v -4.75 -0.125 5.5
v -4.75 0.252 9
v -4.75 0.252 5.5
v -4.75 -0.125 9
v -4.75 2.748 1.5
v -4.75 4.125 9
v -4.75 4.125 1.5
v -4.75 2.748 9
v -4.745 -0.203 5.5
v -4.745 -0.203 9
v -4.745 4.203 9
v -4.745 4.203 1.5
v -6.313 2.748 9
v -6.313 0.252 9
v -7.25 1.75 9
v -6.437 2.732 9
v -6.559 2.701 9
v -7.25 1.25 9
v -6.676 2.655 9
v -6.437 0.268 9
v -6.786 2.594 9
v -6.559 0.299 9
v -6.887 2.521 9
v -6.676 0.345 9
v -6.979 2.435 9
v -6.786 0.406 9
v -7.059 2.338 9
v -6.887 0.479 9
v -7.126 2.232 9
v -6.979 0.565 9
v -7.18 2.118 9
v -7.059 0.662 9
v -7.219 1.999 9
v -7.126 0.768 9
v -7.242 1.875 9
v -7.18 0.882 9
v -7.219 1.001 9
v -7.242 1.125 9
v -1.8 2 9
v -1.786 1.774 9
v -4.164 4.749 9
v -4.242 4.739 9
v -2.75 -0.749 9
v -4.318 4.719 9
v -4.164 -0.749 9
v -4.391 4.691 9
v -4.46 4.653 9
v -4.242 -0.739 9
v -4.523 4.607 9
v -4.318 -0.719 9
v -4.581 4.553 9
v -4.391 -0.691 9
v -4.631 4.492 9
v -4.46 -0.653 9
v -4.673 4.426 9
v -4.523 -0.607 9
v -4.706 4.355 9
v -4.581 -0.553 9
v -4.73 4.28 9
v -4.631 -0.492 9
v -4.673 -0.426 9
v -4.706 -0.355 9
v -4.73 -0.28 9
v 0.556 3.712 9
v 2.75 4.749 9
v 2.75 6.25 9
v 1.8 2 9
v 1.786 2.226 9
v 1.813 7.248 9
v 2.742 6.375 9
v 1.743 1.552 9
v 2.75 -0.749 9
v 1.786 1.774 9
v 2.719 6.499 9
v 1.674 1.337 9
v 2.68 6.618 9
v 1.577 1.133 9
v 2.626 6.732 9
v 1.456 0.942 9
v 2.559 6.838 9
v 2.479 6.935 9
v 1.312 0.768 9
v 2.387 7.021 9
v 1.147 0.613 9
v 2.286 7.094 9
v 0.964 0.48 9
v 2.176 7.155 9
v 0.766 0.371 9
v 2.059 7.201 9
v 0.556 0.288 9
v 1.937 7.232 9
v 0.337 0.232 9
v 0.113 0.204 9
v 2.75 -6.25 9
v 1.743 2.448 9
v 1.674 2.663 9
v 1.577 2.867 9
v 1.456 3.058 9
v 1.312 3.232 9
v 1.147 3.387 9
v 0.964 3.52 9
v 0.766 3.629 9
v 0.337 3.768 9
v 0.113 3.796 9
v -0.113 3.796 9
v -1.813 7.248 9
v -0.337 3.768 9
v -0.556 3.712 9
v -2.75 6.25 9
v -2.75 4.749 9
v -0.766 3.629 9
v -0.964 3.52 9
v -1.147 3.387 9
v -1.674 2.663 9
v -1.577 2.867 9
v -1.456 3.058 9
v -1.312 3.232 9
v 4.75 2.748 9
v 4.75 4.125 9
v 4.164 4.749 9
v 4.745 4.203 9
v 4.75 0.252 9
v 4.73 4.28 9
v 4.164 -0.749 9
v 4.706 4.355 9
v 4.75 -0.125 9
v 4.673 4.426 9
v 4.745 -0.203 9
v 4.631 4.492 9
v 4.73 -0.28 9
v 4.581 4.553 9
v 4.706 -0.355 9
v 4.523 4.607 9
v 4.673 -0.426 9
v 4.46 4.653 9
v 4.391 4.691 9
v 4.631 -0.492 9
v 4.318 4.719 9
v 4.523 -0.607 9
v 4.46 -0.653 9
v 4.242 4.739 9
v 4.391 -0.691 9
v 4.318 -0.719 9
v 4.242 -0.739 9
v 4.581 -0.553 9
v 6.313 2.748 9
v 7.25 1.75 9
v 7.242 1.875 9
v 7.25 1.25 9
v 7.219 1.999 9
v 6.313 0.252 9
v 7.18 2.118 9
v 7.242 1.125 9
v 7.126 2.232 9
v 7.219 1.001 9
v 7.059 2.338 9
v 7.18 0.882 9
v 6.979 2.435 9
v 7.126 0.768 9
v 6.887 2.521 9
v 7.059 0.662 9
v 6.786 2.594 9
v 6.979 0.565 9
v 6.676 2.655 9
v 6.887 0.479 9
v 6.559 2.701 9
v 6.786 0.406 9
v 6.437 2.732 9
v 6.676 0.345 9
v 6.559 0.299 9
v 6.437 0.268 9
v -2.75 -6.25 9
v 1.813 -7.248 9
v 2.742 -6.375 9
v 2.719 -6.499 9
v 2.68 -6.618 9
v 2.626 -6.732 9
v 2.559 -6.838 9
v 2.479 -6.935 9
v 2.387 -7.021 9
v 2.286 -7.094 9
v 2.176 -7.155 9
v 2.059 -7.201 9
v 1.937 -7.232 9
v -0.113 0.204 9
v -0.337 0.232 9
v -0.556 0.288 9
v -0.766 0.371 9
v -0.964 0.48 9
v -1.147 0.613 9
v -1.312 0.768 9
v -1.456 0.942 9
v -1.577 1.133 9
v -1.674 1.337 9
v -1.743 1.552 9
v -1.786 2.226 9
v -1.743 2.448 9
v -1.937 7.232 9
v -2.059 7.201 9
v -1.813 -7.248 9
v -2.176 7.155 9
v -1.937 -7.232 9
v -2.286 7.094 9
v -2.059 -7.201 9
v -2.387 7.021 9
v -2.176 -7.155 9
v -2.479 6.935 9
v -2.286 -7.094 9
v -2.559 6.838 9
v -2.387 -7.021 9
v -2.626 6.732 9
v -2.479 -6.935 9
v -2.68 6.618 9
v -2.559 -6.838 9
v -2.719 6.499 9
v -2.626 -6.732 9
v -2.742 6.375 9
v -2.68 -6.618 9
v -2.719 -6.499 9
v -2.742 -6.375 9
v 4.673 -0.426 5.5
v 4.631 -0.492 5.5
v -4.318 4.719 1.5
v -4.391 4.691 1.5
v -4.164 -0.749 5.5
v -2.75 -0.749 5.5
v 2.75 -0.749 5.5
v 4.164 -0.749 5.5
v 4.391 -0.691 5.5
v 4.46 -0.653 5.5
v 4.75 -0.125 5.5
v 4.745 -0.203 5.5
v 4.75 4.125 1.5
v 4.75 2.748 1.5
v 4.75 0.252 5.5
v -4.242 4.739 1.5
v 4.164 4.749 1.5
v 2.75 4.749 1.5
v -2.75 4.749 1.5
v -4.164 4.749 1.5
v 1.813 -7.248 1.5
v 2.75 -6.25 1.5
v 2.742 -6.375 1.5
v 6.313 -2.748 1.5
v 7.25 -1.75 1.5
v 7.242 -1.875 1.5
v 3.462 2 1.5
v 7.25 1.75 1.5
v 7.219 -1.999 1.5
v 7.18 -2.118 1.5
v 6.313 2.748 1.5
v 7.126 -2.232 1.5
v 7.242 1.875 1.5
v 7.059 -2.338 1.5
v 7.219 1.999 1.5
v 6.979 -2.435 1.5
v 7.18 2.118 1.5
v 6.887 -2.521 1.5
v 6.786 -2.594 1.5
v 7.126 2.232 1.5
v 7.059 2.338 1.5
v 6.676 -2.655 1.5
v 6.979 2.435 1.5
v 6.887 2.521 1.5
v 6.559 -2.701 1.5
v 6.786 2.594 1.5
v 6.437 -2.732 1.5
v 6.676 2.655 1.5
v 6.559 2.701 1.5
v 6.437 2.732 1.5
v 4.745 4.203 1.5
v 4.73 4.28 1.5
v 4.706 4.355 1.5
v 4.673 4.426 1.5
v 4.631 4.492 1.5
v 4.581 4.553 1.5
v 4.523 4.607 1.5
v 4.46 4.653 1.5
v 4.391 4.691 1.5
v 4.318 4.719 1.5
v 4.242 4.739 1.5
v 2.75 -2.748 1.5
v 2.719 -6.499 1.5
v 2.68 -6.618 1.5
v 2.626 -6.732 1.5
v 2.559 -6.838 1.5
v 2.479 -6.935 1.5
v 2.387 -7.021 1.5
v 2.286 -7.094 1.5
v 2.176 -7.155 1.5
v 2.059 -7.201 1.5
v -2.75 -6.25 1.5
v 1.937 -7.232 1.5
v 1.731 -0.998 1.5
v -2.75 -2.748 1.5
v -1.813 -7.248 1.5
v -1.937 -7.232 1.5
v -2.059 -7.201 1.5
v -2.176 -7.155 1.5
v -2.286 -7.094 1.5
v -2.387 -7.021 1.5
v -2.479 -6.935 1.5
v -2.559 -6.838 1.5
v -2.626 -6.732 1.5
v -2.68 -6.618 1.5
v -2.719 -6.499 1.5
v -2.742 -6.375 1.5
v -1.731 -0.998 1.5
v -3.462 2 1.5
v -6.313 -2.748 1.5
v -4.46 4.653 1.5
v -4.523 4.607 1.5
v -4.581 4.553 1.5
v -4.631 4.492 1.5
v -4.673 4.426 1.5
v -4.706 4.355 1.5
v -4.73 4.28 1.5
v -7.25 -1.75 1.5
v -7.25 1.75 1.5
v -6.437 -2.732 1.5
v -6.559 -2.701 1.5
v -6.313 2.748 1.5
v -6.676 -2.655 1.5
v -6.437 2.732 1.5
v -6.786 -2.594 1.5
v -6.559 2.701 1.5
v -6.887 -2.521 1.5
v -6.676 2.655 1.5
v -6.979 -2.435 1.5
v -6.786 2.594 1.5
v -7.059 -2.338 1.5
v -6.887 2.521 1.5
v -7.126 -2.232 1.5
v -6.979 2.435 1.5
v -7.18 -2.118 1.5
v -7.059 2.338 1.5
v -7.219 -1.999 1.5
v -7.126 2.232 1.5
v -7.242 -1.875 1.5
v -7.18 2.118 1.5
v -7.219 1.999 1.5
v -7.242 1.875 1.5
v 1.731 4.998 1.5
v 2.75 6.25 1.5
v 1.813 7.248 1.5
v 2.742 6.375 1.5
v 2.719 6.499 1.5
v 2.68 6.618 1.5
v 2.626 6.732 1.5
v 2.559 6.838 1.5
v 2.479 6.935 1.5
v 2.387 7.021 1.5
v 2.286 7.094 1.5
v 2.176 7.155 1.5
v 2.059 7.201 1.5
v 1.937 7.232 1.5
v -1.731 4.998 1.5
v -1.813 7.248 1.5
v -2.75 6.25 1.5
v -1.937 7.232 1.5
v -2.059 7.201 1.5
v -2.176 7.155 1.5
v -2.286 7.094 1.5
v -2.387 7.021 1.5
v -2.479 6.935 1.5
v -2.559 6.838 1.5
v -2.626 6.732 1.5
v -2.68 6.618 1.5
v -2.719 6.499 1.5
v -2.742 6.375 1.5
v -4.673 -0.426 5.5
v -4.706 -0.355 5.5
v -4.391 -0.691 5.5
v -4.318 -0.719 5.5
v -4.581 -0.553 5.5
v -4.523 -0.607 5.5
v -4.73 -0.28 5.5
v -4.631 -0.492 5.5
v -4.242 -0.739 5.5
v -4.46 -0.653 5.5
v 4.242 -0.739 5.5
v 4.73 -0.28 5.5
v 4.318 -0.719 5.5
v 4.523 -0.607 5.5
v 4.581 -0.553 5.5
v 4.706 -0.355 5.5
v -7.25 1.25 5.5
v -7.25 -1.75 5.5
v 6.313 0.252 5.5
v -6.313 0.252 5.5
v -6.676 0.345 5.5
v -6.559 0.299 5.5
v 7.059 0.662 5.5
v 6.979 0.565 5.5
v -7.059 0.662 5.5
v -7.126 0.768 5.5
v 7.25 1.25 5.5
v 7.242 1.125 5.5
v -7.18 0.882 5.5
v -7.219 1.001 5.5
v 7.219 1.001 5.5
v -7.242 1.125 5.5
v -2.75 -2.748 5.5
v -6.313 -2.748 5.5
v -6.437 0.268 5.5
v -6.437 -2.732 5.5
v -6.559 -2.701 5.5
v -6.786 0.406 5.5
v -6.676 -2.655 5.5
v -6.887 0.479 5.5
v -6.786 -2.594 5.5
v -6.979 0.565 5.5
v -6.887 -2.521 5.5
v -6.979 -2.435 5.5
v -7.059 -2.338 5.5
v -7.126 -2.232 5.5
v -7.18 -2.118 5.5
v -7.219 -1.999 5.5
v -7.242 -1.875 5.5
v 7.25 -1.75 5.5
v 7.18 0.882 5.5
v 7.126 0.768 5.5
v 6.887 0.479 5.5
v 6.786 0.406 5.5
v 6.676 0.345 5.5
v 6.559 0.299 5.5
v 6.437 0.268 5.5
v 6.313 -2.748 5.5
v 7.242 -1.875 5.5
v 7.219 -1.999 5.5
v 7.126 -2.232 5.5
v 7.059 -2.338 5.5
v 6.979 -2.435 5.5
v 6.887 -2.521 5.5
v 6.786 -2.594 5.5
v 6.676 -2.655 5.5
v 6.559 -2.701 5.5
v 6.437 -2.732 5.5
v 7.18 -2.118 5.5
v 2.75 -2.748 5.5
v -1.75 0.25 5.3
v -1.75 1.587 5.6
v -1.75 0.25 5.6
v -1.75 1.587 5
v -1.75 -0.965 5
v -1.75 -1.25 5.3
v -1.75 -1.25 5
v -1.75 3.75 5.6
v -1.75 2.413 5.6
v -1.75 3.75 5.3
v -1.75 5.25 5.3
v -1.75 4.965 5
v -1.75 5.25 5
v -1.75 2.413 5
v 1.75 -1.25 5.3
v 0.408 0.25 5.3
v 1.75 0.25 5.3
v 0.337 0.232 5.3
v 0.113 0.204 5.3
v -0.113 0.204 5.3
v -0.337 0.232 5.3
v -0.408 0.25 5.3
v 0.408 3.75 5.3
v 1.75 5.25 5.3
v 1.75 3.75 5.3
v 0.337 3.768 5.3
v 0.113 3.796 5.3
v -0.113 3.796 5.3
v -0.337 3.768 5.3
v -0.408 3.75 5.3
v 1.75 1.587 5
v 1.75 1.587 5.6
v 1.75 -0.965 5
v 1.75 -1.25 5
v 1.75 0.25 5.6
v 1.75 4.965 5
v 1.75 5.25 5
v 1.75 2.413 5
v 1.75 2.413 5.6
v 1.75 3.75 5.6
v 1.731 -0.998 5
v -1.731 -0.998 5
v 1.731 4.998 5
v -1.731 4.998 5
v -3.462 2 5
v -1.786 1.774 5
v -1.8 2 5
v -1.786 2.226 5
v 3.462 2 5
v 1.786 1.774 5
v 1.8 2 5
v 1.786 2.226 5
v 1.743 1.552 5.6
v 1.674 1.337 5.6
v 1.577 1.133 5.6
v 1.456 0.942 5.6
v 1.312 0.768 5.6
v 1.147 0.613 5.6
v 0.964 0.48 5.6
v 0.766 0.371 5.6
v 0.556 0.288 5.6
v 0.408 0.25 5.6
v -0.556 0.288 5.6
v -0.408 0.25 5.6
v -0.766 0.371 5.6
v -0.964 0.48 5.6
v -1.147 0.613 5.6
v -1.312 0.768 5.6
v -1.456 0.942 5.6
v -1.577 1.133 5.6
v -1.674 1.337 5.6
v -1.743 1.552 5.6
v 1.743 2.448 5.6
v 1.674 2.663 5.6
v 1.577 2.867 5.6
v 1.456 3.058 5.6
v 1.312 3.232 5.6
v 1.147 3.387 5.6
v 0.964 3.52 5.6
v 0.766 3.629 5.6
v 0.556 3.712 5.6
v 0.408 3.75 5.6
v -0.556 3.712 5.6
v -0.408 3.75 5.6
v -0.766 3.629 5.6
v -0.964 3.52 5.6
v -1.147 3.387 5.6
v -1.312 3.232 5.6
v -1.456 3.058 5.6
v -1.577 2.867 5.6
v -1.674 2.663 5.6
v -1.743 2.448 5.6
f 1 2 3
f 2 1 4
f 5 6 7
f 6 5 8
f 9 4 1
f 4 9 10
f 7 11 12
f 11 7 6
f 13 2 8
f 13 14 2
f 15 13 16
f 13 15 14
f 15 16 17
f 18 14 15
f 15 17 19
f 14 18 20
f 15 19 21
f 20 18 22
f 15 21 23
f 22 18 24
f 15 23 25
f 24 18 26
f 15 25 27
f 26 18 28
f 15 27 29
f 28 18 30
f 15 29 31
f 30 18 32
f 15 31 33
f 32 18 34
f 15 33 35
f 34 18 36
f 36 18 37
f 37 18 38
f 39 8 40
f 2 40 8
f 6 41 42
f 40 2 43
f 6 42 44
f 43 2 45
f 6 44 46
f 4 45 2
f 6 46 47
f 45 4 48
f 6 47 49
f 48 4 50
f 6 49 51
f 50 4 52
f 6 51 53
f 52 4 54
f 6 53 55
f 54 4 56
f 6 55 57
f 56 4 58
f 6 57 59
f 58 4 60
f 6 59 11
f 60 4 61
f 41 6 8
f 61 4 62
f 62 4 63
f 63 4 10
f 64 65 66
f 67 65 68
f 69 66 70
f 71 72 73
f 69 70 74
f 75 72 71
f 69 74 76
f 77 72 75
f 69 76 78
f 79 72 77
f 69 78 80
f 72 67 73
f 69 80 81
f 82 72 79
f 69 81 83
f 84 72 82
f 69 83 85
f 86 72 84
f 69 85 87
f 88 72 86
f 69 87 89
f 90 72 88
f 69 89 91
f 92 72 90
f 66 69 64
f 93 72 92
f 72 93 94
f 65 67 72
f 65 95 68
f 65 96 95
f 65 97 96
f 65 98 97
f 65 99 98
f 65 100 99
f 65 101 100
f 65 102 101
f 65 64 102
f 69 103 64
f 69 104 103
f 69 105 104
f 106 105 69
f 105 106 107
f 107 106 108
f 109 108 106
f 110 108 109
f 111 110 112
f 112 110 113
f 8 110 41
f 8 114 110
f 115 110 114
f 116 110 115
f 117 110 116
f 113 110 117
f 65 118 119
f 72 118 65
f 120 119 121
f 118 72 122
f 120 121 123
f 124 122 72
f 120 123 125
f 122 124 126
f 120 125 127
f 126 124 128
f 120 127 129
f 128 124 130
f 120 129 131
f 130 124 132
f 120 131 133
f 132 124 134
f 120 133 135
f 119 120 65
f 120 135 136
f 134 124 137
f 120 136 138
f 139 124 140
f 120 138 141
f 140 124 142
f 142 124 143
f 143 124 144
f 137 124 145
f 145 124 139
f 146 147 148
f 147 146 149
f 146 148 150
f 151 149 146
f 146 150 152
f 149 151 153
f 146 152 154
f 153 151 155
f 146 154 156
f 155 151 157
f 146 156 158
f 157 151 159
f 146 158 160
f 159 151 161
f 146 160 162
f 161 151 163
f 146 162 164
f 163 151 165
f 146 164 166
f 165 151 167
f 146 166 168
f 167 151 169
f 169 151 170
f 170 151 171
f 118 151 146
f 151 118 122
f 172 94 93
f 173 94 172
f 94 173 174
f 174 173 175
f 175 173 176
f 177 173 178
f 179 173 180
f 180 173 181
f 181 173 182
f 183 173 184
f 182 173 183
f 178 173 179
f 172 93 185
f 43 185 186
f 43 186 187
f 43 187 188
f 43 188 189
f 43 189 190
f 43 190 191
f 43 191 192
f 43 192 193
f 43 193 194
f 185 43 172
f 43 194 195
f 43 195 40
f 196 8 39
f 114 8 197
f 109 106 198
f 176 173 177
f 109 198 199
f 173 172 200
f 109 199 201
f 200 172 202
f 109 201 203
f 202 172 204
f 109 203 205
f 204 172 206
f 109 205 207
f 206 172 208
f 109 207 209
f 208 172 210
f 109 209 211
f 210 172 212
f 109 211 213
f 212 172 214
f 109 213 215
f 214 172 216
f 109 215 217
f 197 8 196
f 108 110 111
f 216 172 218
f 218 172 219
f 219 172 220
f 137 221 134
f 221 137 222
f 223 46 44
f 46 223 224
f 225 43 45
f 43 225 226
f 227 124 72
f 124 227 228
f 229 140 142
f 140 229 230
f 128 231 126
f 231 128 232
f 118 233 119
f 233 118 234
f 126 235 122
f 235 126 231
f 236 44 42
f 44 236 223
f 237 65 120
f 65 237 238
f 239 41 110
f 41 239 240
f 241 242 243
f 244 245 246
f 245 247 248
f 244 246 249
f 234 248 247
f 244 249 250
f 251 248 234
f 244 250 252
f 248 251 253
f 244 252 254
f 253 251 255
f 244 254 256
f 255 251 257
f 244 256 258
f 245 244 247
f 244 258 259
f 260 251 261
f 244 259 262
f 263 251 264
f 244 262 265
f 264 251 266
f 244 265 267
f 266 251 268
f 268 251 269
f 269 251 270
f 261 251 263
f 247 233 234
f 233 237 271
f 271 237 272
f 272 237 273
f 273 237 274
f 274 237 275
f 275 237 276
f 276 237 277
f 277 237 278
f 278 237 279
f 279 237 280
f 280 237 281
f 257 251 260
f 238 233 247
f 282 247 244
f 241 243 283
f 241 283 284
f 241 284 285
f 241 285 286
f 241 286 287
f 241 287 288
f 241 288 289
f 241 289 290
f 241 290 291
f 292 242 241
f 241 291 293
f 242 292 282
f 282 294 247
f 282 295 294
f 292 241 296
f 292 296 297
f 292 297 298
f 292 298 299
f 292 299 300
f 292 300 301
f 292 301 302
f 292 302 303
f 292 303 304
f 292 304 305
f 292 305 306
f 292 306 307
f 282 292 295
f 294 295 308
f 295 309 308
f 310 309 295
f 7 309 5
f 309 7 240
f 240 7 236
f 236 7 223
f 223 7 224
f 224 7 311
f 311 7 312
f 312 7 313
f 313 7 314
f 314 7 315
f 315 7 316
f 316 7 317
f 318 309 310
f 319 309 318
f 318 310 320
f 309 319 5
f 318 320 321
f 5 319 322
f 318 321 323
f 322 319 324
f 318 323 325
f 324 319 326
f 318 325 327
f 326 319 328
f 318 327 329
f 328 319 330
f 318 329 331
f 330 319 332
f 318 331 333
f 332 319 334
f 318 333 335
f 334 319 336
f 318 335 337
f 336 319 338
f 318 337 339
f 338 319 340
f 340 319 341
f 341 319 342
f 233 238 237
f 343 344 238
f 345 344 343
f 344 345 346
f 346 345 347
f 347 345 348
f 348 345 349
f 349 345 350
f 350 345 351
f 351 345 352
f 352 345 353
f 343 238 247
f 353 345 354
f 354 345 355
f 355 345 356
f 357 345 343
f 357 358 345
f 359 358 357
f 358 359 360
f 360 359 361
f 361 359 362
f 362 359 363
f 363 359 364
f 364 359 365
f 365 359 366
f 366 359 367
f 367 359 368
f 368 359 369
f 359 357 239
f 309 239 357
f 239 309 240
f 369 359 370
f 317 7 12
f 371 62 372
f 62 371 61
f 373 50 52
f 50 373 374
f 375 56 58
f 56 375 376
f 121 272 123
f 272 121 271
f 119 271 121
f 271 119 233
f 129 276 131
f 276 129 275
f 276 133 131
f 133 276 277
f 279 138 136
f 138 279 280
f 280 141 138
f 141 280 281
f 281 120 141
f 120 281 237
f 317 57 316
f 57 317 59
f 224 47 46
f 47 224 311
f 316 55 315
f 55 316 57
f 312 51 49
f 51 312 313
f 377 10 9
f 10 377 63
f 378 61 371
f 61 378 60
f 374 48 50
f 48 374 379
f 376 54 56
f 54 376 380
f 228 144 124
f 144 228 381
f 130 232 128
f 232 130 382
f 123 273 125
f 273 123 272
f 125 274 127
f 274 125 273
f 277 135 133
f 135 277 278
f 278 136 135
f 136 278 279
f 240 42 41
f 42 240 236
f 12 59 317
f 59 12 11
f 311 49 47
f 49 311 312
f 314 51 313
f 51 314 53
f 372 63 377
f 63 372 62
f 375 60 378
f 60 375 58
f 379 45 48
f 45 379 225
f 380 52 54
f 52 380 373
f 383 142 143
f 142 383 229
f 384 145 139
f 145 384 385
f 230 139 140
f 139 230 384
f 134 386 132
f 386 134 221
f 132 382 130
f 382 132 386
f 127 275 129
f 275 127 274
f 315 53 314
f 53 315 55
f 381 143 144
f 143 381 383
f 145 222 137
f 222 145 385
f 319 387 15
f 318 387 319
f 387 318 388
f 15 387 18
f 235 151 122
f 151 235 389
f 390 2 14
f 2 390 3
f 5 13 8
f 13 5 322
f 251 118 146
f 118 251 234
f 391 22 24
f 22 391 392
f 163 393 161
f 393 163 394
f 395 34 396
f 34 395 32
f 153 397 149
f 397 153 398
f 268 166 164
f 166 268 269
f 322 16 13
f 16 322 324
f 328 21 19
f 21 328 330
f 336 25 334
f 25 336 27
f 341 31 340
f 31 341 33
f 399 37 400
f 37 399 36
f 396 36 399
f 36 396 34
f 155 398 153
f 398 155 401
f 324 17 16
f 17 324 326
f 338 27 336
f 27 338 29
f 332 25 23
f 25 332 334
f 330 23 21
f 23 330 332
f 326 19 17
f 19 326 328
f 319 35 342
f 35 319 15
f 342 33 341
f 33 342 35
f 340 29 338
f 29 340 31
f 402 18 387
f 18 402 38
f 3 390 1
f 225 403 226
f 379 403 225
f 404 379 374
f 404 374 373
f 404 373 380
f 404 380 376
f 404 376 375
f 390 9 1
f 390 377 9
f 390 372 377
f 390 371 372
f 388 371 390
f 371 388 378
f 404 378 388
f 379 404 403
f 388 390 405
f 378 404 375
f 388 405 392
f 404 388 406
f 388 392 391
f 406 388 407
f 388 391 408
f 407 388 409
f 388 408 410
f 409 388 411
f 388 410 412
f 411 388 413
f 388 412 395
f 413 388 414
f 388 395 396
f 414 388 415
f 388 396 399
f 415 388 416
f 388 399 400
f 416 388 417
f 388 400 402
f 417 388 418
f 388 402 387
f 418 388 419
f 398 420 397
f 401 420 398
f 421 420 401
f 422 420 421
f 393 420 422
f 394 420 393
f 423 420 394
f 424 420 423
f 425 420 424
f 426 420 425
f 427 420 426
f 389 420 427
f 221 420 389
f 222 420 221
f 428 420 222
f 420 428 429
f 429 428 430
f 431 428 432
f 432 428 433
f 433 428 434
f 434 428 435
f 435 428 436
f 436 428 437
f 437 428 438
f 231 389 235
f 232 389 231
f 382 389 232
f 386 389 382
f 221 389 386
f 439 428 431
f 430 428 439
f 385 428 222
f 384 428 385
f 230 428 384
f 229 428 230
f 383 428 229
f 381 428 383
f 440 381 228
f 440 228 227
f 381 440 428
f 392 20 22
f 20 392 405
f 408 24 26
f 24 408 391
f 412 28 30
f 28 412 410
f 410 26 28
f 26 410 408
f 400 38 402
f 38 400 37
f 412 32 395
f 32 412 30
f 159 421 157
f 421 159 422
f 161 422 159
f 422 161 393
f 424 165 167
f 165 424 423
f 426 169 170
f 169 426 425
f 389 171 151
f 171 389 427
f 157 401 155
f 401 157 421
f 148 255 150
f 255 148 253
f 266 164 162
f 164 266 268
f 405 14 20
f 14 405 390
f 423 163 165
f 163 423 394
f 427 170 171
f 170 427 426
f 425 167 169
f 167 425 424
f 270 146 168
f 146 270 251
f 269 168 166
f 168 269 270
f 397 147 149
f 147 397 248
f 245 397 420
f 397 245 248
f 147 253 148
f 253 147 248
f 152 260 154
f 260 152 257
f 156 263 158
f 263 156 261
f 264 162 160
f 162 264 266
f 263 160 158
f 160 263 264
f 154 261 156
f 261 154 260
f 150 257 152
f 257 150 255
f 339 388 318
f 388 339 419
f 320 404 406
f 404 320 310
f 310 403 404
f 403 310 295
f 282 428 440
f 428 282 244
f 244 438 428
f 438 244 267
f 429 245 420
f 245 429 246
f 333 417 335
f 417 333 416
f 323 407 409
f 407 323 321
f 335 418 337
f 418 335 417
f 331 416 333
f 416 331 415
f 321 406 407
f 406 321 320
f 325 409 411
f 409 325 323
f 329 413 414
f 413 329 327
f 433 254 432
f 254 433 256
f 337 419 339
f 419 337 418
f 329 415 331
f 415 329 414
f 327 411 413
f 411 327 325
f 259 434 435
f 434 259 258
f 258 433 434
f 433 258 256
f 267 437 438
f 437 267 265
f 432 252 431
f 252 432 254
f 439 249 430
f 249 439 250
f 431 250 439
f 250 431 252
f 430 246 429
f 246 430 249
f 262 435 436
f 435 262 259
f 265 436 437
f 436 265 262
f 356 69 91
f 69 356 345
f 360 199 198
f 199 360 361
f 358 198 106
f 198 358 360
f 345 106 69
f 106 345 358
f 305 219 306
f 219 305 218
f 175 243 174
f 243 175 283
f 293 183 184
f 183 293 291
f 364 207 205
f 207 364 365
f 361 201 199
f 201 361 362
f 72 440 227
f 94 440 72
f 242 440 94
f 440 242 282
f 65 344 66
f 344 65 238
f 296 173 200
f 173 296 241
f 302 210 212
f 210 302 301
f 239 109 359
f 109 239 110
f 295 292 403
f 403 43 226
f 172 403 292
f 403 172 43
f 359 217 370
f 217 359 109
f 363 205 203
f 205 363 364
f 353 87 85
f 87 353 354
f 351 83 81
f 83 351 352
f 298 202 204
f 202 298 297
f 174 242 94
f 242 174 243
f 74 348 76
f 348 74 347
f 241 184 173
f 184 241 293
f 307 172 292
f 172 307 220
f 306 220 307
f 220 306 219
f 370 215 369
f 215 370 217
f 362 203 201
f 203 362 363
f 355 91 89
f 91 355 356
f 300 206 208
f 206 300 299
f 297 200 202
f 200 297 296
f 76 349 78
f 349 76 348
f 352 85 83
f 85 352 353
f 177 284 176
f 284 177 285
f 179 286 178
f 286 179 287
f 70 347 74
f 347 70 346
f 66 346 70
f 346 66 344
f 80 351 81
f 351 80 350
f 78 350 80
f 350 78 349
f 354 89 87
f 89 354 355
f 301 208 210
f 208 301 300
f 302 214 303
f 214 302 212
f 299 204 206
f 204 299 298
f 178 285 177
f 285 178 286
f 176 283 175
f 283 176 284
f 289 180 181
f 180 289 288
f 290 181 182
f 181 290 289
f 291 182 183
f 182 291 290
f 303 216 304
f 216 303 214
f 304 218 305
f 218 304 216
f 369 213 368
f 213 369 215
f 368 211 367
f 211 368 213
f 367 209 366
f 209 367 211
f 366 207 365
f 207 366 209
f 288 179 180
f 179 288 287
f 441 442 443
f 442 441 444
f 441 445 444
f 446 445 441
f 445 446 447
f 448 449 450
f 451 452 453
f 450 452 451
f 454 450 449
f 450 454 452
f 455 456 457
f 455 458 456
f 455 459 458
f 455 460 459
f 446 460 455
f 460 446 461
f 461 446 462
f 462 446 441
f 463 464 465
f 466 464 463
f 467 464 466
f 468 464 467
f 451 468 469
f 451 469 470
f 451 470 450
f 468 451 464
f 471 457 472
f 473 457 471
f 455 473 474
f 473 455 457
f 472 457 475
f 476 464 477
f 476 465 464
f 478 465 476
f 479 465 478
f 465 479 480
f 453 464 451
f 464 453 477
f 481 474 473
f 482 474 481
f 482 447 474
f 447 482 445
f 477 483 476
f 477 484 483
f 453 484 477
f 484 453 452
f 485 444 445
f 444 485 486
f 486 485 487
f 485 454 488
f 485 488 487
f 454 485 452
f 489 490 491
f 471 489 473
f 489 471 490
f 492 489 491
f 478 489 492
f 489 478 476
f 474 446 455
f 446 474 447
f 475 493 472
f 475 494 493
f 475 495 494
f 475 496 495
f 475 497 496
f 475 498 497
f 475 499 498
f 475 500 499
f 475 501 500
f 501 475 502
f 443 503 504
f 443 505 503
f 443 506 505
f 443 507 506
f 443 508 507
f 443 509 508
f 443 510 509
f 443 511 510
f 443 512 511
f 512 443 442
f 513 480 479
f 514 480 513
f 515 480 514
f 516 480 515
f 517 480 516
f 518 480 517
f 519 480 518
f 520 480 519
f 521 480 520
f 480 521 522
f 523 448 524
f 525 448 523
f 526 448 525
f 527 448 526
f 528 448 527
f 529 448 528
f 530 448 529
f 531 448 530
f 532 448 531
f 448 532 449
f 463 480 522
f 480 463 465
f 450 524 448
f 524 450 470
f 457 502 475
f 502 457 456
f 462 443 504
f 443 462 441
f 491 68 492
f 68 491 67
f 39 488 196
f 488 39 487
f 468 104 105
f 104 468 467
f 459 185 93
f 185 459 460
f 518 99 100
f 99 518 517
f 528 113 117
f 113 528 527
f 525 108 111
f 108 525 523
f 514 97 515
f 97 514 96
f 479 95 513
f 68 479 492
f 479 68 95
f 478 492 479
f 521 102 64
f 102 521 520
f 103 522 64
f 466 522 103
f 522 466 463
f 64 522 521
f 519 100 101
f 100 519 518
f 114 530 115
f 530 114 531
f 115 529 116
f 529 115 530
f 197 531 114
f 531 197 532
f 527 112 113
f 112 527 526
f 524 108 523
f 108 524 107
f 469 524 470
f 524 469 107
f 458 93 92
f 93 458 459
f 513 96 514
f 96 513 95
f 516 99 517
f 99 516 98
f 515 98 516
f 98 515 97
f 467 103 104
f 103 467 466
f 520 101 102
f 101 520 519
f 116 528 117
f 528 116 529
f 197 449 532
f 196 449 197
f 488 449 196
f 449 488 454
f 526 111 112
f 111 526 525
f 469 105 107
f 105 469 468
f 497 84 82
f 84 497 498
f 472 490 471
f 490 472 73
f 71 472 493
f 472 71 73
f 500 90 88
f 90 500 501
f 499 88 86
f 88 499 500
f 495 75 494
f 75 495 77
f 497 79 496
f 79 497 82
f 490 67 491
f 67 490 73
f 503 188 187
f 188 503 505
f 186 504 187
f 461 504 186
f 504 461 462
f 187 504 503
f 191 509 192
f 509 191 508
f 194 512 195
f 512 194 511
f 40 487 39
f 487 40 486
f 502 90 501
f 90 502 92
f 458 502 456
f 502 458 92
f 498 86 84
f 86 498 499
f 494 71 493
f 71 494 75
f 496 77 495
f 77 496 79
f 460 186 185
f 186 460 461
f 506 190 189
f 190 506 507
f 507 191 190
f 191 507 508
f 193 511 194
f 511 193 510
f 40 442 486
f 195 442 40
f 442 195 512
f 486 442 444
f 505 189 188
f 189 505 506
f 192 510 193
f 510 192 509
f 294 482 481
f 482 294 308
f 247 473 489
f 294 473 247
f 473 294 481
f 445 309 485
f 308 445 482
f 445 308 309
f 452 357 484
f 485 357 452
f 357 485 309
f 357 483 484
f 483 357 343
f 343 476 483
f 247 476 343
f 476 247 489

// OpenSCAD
$fn = 50;


difference() {
	union() {
		translate(v = [0, 2.0000000000, 1.5000000000]) {
			hull() {
				translate(v = [-4.1250000000, 2.1250000000, 0]) {
					cylinder(h = 7.5000000000, r = 0.6250000000);
				}
				translate(v = [4.1250000000, 2.1250000000, 0]) {
					cylinder(h = 7.5000000000, r = 0.6250000000);
				}
				translate(v = [-4.1250000000, -2.1250000000, 0]) {
					cylinder(h = 7.5000000000, r = 0.6250000000);
				}
				translate(v = [4.1250000000, -2.1250000000, 0]) {
					cylinder(h = 7.5000000000, r = 0.6250000000);
				}
			}
		}
		translate(v = [0, 1.5000000000, 5.5000000000]) {
			hull() {
				translate(v = [-6.2500000000, -0.2500000000, 0]) {
					cylinder(h = 3.5000000000, r = 1);
				}
				translate(v = [6.2500000000, -0.2500000000, 0]) {
					cylinder(h = 3.5000000000, r = 1);
				}
				translate(v = [-6.2500000000, 0.2500000000, 0]) {
					cylinder(h = 3.5000000000, r = 1);
				}
				translate(v = [6.2500000000, 0.2500000000, 0]) {
					cylinder(h = 3.5000000000, r = 1);
				}
			}
		}
		translate(v = [0, 0, 1.5000000000]) {
			hull() {
				translate(v = [-6.2500000000, 1.7500000000, 0]) {
					cylinder(h = 4.0000000000, r = 1);
				}
				translate(v = [6.2500000000, 1.7500000000, 0]) {
					cylinder(h = 4.0000000000, r = 1);
				}
				translate(v = [-6.2500000000, -1.7500000000, 0]) {
					cylinder(h = 4.0000000000, r = 1);
				}
				translate(v = [6.2500000000, -1.7500000000, 0]) {
					cylinder(h = 4.0000000000, r = 1);
				}
			}
		}
		translate(v = [0, 0, 5.5000000000]) {
			hull() {
				translate(v = [-1.7500000000, 6.2500000000, 0]) {
					cylinder(h = 3.5000000000, r = 1);
				}
				translate(v = [1.7500000000, 6.2500000000, 0]) {
					cylinder(h = 3.5000000000, r = 1);
				}
				translate(v = [-1.7500000000, -6.2500000000, 0]) {
					cylinder(h = 3.5000000000, r = 1);
				}
				translate(v = [1.7500000000, -6.2500000000, 0]) {
					cylinder(h = 3.5000000000, r = 1);
				}
			}
		}
		translate(v = [0, 0, 1.5000000000]) {
			hull() {
				translate(v = [-1.7500000000, 6.2500000000, 0]) {
					cylinder(h = 4.0000000000, r = 1);
				}
				translate(v = [1.7500000000, 6.2500000000, 0]) {
					cylinder(h = 4.0000000000, r = 1);
				}
				translate(v = [-1.7500000000, -6.2500000000, 0]) {
					cylinder(h = 4.0000000000, r = 1);
				}
				translate(v = [1.7500000000, -6.2500000000, 0]) {
					cylinder(h = 4.0000000000, r = 1);
				}
			}
		}
	}
	union() {
		translate(v = [0, 2.0000000000, 0]) {
			rotate(a = [0, 0, 0]) {
				difference() {
					union() {
						#translate(v = [-1.7500000000, -3.2500000000, -0.3000000000]) {
							cube(size = [3.5000000000, 6.5000000000, 0.3000000000]);
						}
						#translate(v = [-1.7500000000, -1.7500000000, -0.6000000000]) {
							cube(size = [3.5000000000, 3.5000000000, 0.3000000000]);
						}
						#translate(v = [-1.7500000000, -3.2500000000, 5]) {
							cube(size = [3.5000000000, 6.5000000000, 0.3000000000]);
						}
						#translate(v = [-1.7500000000, -1.7500000000, 5.3000000000]) {
							cube(size = [3.5000000000, 3.5000000000, 0.3000000000]);
						}
						#translate(v = [0, 0, -100.0000000000]) {
							cylinder(h = 200, r = 1.8000000000);
						}
						#linear_extrude(height = 5) {
							polygon(points = [[3.4620000000, 0.0000000000], [1.7310000000, 2.9981799479], [-1.7310000000, 2.9981799479], [-3.4620000000, 0.0000000000], [-1.7310000000, -2.9981799479], [1.7310000000, -2.9981799479]]);
						}
						#translate(v = [-1.7500000000, -3.2500000000, -0.3000000000]) {
							cube(size = [3.5000000000, 6.5000000000, 0.3000000000]);
						}
						#translate(v = [-1.7500000000, -1.7500000000, -0.6000000000]) {
							cube(size = [3.5000000000, 3.5000000000, 0.3000000000]);
						}
						#translate(v = [-1.7500000000, -3.2500000000, 5]) {
							cube(size = [3.5000000000, 6.5000000000, 0.3000000000]);
						}
						#translate(v = [-1.7500000000, -1.7500000000, 5.3000000000]) {
							cube(size = [3.5000000000, 3.5000000000, 0.3000000000]);
						}
						#translate(v = [0, 0, -100.0000000000]) {
							cylinder(h = 200, r = 1.8000000000);
						}
						#translate(v = [-1.7500000000, -3.2500000000, -0.3000000000]) {
							cube(size = [3.5000000000, 6.5000000000, 0.3000000000]);
						}
						#translate(v = [-1.7500000000, -1.7500000000, -0.6000000000]) {
							cube(size = [3.5000000000, 3.5000000000, 0.3000000000]);
						}
						#translate(v = [-1.7500000000, -3.2500000000, 5]) {
							cube(size = [3.5000000000, 6.5000000000, 0.3000000000]);
						}
						#translate(v = [-1.7500000000, -1.7500000000, 5.3000000000]) {
							cube(size = [3.5000000000, 3.5000000000, 0.3000000000]);
						}
						#translate(v = [0, 0, -100.0000000000]) {
							cylinder(h = 200, r = 1.8000000000);
						}
					}
					union();
				}
			}
		}
	}
}
